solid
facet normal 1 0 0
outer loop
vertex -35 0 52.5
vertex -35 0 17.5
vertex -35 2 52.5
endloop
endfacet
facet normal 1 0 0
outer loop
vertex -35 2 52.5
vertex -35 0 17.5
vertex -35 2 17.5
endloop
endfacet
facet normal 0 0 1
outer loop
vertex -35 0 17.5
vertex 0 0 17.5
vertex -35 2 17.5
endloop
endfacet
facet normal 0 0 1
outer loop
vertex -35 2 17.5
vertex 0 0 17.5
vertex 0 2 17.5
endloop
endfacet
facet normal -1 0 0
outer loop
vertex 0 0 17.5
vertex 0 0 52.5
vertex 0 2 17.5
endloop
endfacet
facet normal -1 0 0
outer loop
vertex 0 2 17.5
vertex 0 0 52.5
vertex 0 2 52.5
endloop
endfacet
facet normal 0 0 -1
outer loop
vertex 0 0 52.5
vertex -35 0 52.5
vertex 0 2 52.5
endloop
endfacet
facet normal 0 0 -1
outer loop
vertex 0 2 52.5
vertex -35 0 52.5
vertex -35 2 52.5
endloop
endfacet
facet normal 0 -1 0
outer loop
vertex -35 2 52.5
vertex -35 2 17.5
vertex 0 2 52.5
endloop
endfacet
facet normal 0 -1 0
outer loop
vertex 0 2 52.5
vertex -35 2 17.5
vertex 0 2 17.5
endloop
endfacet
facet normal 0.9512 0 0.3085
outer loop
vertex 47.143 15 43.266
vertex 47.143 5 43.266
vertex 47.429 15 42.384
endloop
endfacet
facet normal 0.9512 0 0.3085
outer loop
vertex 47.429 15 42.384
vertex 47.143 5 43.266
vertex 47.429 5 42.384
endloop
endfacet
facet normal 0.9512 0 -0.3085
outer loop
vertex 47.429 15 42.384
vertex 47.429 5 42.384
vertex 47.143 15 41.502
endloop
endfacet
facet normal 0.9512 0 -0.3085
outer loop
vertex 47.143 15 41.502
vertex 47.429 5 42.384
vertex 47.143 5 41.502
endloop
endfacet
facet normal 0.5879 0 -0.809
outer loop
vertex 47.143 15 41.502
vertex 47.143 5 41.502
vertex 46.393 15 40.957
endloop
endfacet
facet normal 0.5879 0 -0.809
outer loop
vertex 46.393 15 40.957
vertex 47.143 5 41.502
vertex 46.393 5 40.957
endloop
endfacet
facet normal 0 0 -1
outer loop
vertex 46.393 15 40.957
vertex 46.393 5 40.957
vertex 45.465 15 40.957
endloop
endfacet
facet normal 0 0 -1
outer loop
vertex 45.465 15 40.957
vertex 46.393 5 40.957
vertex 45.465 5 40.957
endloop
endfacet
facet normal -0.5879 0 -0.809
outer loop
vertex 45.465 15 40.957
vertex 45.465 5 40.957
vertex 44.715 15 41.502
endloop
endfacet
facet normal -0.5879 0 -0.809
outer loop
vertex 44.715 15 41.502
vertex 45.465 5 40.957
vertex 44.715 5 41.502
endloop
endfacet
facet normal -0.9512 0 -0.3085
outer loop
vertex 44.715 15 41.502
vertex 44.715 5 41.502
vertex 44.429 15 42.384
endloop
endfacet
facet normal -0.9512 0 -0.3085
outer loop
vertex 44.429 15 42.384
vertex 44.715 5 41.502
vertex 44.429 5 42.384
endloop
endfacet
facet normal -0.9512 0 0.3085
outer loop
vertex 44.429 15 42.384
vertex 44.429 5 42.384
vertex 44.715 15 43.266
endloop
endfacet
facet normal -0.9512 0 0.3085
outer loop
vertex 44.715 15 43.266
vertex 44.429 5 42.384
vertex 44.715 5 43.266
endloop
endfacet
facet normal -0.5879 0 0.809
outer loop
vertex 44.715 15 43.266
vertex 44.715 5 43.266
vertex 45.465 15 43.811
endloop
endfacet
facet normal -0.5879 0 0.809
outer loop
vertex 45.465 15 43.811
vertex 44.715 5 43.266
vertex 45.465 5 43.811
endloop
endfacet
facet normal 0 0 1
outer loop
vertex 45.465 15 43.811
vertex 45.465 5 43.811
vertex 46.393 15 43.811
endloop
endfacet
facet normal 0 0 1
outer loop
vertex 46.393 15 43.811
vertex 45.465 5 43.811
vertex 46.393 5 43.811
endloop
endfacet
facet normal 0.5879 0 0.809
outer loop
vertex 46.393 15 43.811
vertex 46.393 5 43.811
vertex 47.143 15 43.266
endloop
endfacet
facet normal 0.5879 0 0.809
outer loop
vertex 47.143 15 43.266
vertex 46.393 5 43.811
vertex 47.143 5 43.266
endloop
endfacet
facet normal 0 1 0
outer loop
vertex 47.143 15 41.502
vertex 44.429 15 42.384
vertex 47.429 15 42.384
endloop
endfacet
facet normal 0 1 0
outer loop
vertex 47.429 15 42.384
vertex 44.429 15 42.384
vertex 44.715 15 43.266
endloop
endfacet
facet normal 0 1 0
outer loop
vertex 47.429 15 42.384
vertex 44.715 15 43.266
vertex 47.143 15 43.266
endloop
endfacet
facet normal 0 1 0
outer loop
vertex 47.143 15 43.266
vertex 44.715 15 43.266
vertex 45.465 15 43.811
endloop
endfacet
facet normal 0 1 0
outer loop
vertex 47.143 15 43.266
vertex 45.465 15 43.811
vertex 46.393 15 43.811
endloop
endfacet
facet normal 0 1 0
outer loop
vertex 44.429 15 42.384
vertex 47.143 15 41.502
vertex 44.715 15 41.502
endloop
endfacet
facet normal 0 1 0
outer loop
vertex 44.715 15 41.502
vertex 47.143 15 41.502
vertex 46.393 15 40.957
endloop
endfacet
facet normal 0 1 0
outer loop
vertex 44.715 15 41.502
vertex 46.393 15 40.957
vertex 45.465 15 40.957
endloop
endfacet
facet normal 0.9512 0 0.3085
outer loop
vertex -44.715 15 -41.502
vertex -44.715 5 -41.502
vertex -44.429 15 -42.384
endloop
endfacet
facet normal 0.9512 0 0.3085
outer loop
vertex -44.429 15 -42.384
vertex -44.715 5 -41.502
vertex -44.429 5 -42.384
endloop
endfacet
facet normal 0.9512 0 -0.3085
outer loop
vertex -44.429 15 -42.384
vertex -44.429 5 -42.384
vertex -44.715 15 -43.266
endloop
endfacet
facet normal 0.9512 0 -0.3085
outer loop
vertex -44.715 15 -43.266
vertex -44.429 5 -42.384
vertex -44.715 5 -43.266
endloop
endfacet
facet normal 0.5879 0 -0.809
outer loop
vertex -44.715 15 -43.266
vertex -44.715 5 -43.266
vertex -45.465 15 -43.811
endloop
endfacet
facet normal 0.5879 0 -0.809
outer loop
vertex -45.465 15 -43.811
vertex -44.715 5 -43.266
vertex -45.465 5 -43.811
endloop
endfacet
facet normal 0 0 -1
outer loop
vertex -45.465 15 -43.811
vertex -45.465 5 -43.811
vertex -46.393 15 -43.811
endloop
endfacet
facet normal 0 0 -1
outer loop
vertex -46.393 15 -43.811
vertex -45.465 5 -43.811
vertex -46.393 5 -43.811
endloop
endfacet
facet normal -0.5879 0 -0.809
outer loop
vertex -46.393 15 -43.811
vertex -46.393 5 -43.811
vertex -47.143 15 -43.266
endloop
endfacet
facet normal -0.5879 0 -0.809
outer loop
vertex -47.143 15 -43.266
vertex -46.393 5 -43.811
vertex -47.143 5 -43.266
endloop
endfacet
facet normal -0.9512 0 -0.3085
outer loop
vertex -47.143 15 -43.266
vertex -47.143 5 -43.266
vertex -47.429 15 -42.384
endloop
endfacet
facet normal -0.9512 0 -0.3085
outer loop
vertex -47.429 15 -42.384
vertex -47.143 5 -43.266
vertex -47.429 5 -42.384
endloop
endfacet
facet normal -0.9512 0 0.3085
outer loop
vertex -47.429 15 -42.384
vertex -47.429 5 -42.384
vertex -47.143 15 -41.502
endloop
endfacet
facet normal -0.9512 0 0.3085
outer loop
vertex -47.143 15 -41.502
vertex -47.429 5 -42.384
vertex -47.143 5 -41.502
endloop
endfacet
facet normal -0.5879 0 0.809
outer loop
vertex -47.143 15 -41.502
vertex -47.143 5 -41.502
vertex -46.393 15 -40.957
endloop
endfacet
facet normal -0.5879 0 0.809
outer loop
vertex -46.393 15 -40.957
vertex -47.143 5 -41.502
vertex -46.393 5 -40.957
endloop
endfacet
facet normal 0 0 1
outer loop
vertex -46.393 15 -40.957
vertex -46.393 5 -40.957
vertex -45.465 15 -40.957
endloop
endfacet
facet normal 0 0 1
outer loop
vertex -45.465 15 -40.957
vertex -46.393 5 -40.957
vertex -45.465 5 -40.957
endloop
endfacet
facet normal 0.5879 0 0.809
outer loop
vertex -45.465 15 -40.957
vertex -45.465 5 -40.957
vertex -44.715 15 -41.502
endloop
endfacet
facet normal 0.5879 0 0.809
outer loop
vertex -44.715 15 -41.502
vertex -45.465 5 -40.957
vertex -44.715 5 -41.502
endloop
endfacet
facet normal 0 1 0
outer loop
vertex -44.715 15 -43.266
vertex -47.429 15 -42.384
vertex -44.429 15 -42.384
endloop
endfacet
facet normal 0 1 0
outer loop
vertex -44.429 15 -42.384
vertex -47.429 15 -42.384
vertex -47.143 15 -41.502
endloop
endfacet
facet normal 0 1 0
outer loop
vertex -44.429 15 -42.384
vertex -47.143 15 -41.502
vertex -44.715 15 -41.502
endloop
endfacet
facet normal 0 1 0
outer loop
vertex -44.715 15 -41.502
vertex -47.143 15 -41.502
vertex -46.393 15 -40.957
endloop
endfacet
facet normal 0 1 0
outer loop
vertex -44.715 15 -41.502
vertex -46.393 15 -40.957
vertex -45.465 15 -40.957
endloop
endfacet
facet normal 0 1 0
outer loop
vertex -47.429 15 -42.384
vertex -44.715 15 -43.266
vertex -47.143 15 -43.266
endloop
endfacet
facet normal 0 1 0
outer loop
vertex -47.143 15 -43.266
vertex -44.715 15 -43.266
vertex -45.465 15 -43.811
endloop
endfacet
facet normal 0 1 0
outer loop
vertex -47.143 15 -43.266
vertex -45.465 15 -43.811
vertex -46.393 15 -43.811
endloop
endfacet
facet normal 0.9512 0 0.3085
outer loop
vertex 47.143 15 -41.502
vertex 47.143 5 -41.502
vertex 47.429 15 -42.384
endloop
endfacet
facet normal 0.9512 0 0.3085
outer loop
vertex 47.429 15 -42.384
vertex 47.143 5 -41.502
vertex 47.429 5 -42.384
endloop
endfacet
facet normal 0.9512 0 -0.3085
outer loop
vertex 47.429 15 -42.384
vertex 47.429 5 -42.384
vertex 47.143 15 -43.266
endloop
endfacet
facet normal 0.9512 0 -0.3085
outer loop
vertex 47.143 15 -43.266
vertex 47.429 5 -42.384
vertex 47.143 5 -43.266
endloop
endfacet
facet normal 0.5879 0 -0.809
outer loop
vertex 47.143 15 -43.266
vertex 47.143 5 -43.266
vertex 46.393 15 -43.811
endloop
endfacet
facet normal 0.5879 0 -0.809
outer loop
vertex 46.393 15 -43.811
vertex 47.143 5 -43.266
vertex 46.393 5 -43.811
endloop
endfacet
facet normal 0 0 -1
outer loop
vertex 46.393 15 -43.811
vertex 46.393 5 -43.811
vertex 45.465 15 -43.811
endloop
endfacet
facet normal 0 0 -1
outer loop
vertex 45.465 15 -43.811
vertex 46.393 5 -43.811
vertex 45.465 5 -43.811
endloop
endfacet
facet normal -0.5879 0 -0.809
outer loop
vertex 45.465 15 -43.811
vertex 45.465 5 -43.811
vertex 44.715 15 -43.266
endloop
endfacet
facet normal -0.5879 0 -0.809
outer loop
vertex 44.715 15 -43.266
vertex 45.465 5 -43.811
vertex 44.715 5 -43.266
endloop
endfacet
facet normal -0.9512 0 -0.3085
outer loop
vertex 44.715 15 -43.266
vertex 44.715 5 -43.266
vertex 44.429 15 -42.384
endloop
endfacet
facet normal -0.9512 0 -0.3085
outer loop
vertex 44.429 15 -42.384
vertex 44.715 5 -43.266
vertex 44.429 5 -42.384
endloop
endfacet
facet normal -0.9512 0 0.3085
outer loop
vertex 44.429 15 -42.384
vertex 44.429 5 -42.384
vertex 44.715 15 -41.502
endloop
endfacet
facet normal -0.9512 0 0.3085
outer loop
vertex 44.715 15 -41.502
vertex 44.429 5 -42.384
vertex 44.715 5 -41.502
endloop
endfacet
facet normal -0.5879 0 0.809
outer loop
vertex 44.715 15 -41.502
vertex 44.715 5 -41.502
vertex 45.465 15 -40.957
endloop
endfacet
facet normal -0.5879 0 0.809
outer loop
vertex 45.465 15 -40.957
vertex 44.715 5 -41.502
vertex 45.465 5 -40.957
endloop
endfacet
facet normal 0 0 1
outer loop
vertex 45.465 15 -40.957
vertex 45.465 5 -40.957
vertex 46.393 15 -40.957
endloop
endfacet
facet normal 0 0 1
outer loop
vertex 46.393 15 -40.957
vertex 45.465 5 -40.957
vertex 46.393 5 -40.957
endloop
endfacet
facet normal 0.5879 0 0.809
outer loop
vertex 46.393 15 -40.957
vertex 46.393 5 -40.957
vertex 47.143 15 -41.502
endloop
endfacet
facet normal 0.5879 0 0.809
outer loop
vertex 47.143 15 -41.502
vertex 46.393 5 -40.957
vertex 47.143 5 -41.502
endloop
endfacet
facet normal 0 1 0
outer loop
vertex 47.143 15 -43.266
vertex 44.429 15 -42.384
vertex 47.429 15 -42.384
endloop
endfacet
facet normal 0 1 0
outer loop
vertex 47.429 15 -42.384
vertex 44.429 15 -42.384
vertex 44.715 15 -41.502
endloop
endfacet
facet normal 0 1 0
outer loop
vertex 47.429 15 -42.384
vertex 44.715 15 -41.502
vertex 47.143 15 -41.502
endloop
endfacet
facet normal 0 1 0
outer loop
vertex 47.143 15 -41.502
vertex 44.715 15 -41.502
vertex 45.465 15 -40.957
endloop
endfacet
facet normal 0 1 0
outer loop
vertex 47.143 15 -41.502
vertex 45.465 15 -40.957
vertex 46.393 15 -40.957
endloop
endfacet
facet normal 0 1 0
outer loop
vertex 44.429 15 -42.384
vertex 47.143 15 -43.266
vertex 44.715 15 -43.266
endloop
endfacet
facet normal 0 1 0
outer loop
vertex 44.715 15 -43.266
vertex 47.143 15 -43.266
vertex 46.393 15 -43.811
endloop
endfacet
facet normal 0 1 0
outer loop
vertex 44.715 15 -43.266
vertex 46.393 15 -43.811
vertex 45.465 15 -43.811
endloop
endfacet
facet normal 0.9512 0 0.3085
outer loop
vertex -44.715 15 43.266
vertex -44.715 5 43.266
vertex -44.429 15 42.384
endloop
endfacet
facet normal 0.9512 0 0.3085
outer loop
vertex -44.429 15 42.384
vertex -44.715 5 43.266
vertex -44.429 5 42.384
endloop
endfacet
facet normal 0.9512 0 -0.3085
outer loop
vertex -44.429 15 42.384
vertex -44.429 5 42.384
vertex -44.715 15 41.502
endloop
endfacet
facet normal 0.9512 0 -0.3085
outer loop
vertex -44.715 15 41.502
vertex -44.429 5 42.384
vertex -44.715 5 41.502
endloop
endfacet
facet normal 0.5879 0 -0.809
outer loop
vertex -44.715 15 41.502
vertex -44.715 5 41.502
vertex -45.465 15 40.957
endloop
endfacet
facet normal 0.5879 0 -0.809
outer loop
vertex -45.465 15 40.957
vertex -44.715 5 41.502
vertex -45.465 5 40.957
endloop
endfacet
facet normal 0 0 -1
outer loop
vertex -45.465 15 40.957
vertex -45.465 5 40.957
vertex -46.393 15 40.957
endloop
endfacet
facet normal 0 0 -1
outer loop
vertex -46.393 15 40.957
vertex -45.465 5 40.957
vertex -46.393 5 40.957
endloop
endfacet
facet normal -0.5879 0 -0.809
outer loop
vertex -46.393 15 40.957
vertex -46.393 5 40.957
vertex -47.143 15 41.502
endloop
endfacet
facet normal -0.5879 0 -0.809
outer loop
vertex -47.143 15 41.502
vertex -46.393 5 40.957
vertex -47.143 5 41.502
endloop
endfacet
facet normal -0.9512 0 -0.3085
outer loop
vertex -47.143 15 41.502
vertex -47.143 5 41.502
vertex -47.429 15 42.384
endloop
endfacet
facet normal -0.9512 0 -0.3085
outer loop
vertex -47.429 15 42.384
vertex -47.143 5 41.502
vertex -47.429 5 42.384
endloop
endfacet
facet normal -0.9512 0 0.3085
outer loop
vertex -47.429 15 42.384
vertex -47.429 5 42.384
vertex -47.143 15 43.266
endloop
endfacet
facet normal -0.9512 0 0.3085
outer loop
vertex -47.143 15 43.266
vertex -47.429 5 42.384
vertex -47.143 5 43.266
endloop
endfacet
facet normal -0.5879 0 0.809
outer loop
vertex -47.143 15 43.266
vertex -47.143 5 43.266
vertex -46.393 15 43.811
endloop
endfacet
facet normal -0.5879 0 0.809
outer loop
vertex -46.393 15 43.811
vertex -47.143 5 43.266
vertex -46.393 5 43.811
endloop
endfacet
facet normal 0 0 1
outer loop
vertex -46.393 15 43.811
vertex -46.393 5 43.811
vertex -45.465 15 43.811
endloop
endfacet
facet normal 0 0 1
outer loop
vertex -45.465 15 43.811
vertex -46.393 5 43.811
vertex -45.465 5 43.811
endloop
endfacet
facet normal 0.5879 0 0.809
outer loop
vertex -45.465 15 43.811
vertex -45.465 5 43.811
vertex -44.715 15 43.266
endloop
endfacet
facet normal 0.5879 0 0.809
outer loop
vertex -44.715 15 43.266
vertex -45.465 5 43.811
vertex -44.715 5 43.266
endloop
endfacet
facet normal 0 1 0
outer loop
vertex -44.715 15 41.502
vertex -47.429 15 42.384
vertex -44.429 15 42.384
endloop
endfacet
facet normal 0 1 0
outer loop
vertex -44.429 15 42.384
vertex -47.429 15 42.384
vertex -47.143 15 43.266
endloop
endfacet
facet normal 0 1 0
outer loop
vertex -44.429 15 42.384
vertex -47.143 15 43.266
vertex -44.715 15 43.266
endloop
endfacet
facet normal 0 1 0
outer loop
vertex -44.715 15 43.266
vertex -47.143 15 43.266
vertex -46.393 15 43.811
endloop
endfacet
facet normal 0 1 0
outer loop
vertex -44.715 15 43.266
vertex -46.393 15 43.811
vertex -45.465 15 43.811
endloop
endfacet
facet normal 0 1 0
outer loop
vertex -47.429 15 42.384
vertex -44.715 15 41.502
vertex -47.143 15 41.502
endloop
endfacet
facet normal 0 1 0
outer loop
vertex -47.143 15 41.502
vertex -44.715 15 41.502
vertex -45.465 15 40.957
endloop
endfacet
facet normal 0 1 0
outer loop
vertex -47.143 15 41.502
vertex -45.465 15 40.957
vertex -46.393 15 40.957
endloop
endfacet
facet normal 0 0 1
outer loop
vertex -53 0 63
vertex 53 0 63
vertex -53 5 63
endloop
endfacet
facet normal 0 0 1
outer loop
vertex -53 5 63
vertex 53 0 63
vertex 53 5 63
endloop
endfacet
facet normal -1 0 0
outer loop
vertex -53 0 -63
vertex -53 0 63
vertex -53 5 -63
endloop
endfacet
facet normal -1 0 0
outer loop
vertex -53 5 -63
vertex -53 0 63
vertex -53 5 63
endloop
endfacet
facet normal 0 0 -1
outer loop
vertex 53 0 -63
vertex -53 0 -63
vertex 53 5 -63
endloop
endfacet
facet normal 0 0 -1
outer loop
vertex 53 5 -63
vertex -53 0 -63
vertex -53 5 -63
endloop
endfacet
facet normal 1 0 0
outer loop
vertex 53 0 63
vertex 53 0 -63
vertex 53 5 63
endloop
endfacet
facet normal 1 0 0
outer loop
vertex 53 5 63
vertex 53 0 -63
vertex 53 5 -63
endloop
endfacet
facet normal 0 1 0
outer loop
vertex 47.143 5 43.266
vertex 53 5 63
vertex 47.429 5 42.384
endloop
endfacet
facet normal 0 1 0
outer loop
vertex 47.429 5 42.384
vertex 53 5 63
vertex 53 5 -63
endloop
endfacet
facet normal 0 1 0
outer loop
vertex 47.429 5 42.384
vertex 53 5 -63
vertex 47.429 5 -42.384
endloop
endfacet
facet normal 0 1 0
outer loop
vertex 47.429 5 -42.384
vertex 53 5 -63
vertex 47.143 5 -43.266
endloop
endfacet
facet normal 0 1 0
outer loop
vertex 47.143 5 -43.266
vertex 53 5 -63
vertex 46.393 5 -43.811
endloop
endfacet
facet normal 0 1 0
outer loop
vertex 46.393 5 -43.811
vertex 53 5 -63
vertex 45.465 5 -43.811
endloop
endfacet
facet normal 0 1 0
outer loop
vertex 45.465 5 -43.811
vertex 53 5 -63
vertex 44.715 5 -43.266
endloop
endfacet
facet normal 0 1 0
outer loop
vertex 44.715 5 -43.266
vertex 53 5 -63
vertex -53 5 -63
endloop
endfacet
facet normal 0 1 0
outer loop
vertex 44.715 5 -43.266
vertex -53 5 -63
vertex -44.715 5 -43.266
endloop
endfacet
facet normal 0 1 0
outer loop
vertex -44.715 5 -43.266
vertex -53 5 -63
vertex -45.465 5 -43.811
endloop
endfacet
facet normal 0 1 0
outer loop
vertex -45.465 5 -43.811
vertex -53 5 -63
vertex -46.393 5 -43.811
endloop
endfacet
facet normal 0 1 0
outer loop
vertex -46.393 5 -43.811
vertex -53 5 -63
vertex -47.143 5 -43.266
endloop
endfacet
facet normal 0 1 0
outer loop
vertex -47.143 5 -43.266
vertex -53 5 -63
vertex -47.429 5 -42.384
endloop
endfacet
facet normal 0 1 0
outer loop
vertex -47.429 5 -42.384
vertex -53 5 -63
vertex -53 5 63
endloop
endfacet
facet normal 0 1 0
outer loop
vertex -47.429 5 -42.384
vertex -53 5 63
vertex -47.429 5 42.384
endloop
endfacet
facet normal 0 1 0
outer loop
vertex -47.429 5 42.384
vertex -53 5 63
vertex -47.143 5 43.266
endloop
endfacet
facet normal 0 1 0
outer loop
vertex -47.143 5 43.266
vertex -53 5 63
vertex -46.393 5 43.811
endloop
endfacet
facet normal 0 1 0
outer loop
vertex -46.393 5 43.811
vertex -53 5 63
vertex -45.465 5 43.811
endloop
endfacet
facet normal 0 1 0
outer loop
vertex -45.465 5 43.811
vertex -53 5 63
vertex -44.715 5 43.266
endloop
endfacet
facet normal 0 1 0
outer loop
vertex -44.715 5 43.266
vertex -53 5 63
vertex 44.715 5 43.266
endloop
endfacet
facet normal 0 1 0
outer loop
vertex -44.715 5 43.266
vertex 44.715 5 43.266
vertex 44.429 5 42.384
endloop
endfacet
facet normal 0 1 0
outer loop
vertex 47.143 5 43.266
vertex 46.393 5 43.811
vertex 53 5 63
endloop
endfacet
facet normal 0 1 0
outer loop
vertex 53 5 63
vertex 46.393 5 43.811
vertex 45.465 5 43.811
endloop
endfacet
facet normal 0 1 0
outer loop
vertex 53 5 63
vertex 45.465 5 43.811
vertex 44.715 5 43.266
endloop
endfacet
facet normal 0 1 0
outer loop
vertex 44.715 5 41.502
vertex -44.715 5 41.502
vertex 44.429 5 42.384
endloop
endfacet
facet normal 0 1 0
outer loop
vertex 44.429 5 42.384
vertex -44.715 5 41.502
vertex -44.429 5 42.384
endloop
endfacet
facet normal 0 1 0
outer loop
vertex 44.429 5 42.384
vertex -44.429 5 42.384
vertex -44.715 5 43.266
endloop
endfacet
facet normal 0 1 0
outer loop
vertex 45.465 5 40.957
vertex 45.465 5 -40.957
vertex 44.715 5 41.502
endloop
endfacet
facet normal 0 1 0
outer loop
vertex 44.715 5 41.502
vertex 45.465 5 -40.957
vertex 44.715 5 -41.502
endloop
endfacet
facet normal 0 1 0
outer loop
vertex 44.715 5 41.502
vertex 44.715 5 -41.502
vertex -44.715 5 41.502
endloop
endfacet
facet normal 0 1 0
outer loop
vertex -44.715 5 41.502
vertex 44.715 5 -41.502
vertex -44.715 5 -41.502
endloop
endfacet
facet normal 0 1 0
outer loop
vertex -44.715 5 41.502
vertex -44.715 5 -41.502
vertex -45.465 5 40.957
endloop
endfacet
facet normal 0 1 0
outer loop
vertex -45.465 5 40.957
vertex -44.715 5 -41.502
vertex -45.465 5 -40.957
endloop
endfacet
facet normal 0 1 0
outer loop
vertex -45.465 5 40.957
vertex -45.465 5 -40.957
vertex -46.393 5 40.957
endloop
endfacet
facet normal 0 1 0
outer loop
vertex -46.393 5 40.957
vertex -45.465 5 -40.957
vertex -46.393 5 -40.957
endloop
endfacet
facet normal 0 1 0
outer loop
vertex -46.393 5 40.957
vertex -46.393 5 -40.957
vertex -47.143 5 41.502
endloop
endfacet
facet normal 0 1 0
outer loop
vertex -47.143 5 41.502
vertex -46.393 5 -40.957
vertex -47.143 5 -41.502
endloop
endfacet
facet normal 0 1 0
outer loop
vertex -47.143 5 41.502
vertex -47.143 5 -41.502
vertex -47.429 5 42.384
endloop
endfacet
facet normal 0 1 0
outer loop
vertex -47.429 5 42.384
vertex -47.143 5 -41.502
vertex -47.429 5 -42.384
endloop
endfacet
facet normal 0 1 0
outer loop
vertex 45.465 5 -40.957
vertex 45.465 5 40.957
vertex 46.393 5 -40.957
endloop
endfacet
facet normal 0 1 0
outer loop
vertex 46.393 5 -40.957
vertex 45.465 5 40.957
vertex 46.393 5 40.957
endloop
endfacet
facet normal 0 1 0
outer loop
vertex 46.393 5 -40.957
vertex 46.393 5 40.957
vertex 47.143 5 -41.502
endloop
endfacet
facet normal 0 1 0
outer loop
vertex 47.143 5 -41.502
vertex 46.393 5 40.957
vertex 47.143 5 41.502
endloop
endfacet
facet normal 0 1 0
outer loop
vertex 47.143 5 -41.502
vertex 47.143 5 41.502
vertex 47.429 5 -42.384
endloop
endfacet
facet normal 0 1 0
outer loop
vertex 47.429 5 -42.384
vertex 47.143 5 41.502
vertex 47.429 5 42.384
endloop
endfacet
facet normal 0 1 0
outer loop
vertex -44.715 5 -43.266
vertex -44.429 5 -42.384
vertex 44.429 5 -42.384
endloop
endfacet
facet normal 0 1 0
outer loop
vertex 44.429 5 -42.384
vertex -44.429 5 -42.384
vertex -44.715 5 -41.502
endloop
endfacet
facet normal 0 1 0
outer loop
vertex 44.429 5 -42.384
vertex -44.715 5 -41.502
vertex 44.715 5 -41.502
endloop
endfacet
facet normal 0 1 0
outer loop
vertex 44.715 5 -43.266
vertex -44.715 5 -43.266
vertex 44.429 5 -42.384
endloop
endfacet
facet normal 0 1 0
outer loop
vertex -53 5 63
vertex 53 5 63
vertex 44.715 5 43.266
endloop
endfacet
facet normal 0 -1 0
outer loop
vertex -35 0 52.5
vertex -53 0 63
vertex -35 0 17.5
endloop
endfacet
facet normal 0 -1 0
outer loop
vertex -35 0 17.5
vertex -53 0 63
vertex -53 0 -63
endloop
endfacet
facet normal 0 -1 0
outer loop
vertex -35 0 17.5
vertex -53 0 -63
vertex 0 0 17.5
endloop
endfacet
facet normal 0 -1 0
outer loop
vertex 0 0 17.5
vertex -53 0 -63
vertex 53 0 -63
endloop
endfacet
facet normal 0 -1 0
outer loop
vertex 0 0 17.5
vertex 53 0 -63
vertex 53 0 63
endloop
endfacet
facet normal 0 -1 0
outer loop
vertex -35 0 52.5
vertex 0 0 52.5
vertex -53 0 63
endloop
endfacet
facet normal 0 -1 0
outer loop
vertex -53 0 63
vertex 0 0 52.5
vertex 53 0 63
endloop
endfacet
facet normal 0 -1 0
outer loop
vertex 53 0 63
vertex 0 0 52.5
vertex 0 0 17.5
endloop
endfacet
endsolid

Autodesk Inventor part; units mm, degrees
ref_plane "YZ Plane" through (0, 0, 0) normal (1, 0, 0) x (0, 1, 0)
ref_plane "XZ Plane" through (0, 0, 0) normal (0, 1, 0) x (-1, 0, 0)
ref_plane "XY Plane" through (0, 0, 0) normal (0, 0, 1) x (1, 0, 0)
sketch "Boceto1" plane through (0, 0, 0) normal (0, 1, 0) x (-1, 0, 0)
  line L0 (53, 63) -> (-53, 63)
  line L1 (-53, 63) -> (-53, -63)
  line L2 (-53, -63) -> (53, -63)
  line L3 (53, -63) -> (53, 63)
  point P0 (0, 0)
  point P1 (0, 63)
  dimension "d1" = 106
  dimension "d2" = 126
  dimension "d3" = 53
  dimension "d4" = 63
extrude "Extrusión1" add sketch "Boceto1" along normal blind 5
sketch "Boceto2" plane through (0, 5, 0) normal (0, 1, 0) x (1, 0, 0)
  circle A0 centre (-45.929, -42.384) radius 1.5
  line L0 (-53, -63) -> (53, -63) projected
  line L1 (-53, 63) -> (-53, -63) projected
  line L2 (-81, 0) -> (77, 0)
  line L3 (0, -130) -> (0, 128)
  circle A1 centre (-45.929, 42.384) radius 1.5
  line L4 (-53, -63) -> (-53, 63)
  circle A2 centre (45.929, -42.384) radius 1.5
  circle A3 centre (45.929, 42.384) radius 1.5
  point P0 (0, 0)
  dimension "d7" = 3
  dimension "d8" = 20.616
  dimension "d9" = 7.071
extrude "Extrusión2" add sketch "Boceto2" along normal blind 10 contours A0 | A1 | A2 | A3
sketch "Boceto3" plane through (0, 0, 0) normal (0, -1, 0) x (1, 0, 0)
  line L0 (-35, 52.5) -> (35, 52.5)
  line L1 (35, 52.5) -> (35, -52.5)
  line L2 (35, -52.5) -> (-35, -52.5)
  line L3 (-35, -52.5) -> (-35, 52.5)
  line L4 (53, -63) -> (-53, -63) projected
  line L5 (-53, 63) -> (53, 63) projected
  line L6 (53, 63) -> (53, -63) projected
  line L7 (-53, -63) -> (-53, 63) projected
  line L8 (35, 17.5) -> (-35, 17.5)
  line L9 (35, -17.5) -> (-35, -17.5)
  line L10 (0, 52.5) -> (0, -52.5)
  point P0 (0, 0)
  point P1 (0, 17.5)
  dimension "d12" = 52.5
  dimension "d13" = 126
  dimension "d14" = 106
  dimension "d15" = 52.5
  dimension "d16" = 35
  dimension "d17" = 35
  dimension "d18" = 35
  dimension "d19" = 35
  dimension "d20" = 35
extrude "Extrusión3" cut sketch "Boceto3" against normal blind 2 contours L0 L10 L8 L3
properties part number "Tapa 0"
